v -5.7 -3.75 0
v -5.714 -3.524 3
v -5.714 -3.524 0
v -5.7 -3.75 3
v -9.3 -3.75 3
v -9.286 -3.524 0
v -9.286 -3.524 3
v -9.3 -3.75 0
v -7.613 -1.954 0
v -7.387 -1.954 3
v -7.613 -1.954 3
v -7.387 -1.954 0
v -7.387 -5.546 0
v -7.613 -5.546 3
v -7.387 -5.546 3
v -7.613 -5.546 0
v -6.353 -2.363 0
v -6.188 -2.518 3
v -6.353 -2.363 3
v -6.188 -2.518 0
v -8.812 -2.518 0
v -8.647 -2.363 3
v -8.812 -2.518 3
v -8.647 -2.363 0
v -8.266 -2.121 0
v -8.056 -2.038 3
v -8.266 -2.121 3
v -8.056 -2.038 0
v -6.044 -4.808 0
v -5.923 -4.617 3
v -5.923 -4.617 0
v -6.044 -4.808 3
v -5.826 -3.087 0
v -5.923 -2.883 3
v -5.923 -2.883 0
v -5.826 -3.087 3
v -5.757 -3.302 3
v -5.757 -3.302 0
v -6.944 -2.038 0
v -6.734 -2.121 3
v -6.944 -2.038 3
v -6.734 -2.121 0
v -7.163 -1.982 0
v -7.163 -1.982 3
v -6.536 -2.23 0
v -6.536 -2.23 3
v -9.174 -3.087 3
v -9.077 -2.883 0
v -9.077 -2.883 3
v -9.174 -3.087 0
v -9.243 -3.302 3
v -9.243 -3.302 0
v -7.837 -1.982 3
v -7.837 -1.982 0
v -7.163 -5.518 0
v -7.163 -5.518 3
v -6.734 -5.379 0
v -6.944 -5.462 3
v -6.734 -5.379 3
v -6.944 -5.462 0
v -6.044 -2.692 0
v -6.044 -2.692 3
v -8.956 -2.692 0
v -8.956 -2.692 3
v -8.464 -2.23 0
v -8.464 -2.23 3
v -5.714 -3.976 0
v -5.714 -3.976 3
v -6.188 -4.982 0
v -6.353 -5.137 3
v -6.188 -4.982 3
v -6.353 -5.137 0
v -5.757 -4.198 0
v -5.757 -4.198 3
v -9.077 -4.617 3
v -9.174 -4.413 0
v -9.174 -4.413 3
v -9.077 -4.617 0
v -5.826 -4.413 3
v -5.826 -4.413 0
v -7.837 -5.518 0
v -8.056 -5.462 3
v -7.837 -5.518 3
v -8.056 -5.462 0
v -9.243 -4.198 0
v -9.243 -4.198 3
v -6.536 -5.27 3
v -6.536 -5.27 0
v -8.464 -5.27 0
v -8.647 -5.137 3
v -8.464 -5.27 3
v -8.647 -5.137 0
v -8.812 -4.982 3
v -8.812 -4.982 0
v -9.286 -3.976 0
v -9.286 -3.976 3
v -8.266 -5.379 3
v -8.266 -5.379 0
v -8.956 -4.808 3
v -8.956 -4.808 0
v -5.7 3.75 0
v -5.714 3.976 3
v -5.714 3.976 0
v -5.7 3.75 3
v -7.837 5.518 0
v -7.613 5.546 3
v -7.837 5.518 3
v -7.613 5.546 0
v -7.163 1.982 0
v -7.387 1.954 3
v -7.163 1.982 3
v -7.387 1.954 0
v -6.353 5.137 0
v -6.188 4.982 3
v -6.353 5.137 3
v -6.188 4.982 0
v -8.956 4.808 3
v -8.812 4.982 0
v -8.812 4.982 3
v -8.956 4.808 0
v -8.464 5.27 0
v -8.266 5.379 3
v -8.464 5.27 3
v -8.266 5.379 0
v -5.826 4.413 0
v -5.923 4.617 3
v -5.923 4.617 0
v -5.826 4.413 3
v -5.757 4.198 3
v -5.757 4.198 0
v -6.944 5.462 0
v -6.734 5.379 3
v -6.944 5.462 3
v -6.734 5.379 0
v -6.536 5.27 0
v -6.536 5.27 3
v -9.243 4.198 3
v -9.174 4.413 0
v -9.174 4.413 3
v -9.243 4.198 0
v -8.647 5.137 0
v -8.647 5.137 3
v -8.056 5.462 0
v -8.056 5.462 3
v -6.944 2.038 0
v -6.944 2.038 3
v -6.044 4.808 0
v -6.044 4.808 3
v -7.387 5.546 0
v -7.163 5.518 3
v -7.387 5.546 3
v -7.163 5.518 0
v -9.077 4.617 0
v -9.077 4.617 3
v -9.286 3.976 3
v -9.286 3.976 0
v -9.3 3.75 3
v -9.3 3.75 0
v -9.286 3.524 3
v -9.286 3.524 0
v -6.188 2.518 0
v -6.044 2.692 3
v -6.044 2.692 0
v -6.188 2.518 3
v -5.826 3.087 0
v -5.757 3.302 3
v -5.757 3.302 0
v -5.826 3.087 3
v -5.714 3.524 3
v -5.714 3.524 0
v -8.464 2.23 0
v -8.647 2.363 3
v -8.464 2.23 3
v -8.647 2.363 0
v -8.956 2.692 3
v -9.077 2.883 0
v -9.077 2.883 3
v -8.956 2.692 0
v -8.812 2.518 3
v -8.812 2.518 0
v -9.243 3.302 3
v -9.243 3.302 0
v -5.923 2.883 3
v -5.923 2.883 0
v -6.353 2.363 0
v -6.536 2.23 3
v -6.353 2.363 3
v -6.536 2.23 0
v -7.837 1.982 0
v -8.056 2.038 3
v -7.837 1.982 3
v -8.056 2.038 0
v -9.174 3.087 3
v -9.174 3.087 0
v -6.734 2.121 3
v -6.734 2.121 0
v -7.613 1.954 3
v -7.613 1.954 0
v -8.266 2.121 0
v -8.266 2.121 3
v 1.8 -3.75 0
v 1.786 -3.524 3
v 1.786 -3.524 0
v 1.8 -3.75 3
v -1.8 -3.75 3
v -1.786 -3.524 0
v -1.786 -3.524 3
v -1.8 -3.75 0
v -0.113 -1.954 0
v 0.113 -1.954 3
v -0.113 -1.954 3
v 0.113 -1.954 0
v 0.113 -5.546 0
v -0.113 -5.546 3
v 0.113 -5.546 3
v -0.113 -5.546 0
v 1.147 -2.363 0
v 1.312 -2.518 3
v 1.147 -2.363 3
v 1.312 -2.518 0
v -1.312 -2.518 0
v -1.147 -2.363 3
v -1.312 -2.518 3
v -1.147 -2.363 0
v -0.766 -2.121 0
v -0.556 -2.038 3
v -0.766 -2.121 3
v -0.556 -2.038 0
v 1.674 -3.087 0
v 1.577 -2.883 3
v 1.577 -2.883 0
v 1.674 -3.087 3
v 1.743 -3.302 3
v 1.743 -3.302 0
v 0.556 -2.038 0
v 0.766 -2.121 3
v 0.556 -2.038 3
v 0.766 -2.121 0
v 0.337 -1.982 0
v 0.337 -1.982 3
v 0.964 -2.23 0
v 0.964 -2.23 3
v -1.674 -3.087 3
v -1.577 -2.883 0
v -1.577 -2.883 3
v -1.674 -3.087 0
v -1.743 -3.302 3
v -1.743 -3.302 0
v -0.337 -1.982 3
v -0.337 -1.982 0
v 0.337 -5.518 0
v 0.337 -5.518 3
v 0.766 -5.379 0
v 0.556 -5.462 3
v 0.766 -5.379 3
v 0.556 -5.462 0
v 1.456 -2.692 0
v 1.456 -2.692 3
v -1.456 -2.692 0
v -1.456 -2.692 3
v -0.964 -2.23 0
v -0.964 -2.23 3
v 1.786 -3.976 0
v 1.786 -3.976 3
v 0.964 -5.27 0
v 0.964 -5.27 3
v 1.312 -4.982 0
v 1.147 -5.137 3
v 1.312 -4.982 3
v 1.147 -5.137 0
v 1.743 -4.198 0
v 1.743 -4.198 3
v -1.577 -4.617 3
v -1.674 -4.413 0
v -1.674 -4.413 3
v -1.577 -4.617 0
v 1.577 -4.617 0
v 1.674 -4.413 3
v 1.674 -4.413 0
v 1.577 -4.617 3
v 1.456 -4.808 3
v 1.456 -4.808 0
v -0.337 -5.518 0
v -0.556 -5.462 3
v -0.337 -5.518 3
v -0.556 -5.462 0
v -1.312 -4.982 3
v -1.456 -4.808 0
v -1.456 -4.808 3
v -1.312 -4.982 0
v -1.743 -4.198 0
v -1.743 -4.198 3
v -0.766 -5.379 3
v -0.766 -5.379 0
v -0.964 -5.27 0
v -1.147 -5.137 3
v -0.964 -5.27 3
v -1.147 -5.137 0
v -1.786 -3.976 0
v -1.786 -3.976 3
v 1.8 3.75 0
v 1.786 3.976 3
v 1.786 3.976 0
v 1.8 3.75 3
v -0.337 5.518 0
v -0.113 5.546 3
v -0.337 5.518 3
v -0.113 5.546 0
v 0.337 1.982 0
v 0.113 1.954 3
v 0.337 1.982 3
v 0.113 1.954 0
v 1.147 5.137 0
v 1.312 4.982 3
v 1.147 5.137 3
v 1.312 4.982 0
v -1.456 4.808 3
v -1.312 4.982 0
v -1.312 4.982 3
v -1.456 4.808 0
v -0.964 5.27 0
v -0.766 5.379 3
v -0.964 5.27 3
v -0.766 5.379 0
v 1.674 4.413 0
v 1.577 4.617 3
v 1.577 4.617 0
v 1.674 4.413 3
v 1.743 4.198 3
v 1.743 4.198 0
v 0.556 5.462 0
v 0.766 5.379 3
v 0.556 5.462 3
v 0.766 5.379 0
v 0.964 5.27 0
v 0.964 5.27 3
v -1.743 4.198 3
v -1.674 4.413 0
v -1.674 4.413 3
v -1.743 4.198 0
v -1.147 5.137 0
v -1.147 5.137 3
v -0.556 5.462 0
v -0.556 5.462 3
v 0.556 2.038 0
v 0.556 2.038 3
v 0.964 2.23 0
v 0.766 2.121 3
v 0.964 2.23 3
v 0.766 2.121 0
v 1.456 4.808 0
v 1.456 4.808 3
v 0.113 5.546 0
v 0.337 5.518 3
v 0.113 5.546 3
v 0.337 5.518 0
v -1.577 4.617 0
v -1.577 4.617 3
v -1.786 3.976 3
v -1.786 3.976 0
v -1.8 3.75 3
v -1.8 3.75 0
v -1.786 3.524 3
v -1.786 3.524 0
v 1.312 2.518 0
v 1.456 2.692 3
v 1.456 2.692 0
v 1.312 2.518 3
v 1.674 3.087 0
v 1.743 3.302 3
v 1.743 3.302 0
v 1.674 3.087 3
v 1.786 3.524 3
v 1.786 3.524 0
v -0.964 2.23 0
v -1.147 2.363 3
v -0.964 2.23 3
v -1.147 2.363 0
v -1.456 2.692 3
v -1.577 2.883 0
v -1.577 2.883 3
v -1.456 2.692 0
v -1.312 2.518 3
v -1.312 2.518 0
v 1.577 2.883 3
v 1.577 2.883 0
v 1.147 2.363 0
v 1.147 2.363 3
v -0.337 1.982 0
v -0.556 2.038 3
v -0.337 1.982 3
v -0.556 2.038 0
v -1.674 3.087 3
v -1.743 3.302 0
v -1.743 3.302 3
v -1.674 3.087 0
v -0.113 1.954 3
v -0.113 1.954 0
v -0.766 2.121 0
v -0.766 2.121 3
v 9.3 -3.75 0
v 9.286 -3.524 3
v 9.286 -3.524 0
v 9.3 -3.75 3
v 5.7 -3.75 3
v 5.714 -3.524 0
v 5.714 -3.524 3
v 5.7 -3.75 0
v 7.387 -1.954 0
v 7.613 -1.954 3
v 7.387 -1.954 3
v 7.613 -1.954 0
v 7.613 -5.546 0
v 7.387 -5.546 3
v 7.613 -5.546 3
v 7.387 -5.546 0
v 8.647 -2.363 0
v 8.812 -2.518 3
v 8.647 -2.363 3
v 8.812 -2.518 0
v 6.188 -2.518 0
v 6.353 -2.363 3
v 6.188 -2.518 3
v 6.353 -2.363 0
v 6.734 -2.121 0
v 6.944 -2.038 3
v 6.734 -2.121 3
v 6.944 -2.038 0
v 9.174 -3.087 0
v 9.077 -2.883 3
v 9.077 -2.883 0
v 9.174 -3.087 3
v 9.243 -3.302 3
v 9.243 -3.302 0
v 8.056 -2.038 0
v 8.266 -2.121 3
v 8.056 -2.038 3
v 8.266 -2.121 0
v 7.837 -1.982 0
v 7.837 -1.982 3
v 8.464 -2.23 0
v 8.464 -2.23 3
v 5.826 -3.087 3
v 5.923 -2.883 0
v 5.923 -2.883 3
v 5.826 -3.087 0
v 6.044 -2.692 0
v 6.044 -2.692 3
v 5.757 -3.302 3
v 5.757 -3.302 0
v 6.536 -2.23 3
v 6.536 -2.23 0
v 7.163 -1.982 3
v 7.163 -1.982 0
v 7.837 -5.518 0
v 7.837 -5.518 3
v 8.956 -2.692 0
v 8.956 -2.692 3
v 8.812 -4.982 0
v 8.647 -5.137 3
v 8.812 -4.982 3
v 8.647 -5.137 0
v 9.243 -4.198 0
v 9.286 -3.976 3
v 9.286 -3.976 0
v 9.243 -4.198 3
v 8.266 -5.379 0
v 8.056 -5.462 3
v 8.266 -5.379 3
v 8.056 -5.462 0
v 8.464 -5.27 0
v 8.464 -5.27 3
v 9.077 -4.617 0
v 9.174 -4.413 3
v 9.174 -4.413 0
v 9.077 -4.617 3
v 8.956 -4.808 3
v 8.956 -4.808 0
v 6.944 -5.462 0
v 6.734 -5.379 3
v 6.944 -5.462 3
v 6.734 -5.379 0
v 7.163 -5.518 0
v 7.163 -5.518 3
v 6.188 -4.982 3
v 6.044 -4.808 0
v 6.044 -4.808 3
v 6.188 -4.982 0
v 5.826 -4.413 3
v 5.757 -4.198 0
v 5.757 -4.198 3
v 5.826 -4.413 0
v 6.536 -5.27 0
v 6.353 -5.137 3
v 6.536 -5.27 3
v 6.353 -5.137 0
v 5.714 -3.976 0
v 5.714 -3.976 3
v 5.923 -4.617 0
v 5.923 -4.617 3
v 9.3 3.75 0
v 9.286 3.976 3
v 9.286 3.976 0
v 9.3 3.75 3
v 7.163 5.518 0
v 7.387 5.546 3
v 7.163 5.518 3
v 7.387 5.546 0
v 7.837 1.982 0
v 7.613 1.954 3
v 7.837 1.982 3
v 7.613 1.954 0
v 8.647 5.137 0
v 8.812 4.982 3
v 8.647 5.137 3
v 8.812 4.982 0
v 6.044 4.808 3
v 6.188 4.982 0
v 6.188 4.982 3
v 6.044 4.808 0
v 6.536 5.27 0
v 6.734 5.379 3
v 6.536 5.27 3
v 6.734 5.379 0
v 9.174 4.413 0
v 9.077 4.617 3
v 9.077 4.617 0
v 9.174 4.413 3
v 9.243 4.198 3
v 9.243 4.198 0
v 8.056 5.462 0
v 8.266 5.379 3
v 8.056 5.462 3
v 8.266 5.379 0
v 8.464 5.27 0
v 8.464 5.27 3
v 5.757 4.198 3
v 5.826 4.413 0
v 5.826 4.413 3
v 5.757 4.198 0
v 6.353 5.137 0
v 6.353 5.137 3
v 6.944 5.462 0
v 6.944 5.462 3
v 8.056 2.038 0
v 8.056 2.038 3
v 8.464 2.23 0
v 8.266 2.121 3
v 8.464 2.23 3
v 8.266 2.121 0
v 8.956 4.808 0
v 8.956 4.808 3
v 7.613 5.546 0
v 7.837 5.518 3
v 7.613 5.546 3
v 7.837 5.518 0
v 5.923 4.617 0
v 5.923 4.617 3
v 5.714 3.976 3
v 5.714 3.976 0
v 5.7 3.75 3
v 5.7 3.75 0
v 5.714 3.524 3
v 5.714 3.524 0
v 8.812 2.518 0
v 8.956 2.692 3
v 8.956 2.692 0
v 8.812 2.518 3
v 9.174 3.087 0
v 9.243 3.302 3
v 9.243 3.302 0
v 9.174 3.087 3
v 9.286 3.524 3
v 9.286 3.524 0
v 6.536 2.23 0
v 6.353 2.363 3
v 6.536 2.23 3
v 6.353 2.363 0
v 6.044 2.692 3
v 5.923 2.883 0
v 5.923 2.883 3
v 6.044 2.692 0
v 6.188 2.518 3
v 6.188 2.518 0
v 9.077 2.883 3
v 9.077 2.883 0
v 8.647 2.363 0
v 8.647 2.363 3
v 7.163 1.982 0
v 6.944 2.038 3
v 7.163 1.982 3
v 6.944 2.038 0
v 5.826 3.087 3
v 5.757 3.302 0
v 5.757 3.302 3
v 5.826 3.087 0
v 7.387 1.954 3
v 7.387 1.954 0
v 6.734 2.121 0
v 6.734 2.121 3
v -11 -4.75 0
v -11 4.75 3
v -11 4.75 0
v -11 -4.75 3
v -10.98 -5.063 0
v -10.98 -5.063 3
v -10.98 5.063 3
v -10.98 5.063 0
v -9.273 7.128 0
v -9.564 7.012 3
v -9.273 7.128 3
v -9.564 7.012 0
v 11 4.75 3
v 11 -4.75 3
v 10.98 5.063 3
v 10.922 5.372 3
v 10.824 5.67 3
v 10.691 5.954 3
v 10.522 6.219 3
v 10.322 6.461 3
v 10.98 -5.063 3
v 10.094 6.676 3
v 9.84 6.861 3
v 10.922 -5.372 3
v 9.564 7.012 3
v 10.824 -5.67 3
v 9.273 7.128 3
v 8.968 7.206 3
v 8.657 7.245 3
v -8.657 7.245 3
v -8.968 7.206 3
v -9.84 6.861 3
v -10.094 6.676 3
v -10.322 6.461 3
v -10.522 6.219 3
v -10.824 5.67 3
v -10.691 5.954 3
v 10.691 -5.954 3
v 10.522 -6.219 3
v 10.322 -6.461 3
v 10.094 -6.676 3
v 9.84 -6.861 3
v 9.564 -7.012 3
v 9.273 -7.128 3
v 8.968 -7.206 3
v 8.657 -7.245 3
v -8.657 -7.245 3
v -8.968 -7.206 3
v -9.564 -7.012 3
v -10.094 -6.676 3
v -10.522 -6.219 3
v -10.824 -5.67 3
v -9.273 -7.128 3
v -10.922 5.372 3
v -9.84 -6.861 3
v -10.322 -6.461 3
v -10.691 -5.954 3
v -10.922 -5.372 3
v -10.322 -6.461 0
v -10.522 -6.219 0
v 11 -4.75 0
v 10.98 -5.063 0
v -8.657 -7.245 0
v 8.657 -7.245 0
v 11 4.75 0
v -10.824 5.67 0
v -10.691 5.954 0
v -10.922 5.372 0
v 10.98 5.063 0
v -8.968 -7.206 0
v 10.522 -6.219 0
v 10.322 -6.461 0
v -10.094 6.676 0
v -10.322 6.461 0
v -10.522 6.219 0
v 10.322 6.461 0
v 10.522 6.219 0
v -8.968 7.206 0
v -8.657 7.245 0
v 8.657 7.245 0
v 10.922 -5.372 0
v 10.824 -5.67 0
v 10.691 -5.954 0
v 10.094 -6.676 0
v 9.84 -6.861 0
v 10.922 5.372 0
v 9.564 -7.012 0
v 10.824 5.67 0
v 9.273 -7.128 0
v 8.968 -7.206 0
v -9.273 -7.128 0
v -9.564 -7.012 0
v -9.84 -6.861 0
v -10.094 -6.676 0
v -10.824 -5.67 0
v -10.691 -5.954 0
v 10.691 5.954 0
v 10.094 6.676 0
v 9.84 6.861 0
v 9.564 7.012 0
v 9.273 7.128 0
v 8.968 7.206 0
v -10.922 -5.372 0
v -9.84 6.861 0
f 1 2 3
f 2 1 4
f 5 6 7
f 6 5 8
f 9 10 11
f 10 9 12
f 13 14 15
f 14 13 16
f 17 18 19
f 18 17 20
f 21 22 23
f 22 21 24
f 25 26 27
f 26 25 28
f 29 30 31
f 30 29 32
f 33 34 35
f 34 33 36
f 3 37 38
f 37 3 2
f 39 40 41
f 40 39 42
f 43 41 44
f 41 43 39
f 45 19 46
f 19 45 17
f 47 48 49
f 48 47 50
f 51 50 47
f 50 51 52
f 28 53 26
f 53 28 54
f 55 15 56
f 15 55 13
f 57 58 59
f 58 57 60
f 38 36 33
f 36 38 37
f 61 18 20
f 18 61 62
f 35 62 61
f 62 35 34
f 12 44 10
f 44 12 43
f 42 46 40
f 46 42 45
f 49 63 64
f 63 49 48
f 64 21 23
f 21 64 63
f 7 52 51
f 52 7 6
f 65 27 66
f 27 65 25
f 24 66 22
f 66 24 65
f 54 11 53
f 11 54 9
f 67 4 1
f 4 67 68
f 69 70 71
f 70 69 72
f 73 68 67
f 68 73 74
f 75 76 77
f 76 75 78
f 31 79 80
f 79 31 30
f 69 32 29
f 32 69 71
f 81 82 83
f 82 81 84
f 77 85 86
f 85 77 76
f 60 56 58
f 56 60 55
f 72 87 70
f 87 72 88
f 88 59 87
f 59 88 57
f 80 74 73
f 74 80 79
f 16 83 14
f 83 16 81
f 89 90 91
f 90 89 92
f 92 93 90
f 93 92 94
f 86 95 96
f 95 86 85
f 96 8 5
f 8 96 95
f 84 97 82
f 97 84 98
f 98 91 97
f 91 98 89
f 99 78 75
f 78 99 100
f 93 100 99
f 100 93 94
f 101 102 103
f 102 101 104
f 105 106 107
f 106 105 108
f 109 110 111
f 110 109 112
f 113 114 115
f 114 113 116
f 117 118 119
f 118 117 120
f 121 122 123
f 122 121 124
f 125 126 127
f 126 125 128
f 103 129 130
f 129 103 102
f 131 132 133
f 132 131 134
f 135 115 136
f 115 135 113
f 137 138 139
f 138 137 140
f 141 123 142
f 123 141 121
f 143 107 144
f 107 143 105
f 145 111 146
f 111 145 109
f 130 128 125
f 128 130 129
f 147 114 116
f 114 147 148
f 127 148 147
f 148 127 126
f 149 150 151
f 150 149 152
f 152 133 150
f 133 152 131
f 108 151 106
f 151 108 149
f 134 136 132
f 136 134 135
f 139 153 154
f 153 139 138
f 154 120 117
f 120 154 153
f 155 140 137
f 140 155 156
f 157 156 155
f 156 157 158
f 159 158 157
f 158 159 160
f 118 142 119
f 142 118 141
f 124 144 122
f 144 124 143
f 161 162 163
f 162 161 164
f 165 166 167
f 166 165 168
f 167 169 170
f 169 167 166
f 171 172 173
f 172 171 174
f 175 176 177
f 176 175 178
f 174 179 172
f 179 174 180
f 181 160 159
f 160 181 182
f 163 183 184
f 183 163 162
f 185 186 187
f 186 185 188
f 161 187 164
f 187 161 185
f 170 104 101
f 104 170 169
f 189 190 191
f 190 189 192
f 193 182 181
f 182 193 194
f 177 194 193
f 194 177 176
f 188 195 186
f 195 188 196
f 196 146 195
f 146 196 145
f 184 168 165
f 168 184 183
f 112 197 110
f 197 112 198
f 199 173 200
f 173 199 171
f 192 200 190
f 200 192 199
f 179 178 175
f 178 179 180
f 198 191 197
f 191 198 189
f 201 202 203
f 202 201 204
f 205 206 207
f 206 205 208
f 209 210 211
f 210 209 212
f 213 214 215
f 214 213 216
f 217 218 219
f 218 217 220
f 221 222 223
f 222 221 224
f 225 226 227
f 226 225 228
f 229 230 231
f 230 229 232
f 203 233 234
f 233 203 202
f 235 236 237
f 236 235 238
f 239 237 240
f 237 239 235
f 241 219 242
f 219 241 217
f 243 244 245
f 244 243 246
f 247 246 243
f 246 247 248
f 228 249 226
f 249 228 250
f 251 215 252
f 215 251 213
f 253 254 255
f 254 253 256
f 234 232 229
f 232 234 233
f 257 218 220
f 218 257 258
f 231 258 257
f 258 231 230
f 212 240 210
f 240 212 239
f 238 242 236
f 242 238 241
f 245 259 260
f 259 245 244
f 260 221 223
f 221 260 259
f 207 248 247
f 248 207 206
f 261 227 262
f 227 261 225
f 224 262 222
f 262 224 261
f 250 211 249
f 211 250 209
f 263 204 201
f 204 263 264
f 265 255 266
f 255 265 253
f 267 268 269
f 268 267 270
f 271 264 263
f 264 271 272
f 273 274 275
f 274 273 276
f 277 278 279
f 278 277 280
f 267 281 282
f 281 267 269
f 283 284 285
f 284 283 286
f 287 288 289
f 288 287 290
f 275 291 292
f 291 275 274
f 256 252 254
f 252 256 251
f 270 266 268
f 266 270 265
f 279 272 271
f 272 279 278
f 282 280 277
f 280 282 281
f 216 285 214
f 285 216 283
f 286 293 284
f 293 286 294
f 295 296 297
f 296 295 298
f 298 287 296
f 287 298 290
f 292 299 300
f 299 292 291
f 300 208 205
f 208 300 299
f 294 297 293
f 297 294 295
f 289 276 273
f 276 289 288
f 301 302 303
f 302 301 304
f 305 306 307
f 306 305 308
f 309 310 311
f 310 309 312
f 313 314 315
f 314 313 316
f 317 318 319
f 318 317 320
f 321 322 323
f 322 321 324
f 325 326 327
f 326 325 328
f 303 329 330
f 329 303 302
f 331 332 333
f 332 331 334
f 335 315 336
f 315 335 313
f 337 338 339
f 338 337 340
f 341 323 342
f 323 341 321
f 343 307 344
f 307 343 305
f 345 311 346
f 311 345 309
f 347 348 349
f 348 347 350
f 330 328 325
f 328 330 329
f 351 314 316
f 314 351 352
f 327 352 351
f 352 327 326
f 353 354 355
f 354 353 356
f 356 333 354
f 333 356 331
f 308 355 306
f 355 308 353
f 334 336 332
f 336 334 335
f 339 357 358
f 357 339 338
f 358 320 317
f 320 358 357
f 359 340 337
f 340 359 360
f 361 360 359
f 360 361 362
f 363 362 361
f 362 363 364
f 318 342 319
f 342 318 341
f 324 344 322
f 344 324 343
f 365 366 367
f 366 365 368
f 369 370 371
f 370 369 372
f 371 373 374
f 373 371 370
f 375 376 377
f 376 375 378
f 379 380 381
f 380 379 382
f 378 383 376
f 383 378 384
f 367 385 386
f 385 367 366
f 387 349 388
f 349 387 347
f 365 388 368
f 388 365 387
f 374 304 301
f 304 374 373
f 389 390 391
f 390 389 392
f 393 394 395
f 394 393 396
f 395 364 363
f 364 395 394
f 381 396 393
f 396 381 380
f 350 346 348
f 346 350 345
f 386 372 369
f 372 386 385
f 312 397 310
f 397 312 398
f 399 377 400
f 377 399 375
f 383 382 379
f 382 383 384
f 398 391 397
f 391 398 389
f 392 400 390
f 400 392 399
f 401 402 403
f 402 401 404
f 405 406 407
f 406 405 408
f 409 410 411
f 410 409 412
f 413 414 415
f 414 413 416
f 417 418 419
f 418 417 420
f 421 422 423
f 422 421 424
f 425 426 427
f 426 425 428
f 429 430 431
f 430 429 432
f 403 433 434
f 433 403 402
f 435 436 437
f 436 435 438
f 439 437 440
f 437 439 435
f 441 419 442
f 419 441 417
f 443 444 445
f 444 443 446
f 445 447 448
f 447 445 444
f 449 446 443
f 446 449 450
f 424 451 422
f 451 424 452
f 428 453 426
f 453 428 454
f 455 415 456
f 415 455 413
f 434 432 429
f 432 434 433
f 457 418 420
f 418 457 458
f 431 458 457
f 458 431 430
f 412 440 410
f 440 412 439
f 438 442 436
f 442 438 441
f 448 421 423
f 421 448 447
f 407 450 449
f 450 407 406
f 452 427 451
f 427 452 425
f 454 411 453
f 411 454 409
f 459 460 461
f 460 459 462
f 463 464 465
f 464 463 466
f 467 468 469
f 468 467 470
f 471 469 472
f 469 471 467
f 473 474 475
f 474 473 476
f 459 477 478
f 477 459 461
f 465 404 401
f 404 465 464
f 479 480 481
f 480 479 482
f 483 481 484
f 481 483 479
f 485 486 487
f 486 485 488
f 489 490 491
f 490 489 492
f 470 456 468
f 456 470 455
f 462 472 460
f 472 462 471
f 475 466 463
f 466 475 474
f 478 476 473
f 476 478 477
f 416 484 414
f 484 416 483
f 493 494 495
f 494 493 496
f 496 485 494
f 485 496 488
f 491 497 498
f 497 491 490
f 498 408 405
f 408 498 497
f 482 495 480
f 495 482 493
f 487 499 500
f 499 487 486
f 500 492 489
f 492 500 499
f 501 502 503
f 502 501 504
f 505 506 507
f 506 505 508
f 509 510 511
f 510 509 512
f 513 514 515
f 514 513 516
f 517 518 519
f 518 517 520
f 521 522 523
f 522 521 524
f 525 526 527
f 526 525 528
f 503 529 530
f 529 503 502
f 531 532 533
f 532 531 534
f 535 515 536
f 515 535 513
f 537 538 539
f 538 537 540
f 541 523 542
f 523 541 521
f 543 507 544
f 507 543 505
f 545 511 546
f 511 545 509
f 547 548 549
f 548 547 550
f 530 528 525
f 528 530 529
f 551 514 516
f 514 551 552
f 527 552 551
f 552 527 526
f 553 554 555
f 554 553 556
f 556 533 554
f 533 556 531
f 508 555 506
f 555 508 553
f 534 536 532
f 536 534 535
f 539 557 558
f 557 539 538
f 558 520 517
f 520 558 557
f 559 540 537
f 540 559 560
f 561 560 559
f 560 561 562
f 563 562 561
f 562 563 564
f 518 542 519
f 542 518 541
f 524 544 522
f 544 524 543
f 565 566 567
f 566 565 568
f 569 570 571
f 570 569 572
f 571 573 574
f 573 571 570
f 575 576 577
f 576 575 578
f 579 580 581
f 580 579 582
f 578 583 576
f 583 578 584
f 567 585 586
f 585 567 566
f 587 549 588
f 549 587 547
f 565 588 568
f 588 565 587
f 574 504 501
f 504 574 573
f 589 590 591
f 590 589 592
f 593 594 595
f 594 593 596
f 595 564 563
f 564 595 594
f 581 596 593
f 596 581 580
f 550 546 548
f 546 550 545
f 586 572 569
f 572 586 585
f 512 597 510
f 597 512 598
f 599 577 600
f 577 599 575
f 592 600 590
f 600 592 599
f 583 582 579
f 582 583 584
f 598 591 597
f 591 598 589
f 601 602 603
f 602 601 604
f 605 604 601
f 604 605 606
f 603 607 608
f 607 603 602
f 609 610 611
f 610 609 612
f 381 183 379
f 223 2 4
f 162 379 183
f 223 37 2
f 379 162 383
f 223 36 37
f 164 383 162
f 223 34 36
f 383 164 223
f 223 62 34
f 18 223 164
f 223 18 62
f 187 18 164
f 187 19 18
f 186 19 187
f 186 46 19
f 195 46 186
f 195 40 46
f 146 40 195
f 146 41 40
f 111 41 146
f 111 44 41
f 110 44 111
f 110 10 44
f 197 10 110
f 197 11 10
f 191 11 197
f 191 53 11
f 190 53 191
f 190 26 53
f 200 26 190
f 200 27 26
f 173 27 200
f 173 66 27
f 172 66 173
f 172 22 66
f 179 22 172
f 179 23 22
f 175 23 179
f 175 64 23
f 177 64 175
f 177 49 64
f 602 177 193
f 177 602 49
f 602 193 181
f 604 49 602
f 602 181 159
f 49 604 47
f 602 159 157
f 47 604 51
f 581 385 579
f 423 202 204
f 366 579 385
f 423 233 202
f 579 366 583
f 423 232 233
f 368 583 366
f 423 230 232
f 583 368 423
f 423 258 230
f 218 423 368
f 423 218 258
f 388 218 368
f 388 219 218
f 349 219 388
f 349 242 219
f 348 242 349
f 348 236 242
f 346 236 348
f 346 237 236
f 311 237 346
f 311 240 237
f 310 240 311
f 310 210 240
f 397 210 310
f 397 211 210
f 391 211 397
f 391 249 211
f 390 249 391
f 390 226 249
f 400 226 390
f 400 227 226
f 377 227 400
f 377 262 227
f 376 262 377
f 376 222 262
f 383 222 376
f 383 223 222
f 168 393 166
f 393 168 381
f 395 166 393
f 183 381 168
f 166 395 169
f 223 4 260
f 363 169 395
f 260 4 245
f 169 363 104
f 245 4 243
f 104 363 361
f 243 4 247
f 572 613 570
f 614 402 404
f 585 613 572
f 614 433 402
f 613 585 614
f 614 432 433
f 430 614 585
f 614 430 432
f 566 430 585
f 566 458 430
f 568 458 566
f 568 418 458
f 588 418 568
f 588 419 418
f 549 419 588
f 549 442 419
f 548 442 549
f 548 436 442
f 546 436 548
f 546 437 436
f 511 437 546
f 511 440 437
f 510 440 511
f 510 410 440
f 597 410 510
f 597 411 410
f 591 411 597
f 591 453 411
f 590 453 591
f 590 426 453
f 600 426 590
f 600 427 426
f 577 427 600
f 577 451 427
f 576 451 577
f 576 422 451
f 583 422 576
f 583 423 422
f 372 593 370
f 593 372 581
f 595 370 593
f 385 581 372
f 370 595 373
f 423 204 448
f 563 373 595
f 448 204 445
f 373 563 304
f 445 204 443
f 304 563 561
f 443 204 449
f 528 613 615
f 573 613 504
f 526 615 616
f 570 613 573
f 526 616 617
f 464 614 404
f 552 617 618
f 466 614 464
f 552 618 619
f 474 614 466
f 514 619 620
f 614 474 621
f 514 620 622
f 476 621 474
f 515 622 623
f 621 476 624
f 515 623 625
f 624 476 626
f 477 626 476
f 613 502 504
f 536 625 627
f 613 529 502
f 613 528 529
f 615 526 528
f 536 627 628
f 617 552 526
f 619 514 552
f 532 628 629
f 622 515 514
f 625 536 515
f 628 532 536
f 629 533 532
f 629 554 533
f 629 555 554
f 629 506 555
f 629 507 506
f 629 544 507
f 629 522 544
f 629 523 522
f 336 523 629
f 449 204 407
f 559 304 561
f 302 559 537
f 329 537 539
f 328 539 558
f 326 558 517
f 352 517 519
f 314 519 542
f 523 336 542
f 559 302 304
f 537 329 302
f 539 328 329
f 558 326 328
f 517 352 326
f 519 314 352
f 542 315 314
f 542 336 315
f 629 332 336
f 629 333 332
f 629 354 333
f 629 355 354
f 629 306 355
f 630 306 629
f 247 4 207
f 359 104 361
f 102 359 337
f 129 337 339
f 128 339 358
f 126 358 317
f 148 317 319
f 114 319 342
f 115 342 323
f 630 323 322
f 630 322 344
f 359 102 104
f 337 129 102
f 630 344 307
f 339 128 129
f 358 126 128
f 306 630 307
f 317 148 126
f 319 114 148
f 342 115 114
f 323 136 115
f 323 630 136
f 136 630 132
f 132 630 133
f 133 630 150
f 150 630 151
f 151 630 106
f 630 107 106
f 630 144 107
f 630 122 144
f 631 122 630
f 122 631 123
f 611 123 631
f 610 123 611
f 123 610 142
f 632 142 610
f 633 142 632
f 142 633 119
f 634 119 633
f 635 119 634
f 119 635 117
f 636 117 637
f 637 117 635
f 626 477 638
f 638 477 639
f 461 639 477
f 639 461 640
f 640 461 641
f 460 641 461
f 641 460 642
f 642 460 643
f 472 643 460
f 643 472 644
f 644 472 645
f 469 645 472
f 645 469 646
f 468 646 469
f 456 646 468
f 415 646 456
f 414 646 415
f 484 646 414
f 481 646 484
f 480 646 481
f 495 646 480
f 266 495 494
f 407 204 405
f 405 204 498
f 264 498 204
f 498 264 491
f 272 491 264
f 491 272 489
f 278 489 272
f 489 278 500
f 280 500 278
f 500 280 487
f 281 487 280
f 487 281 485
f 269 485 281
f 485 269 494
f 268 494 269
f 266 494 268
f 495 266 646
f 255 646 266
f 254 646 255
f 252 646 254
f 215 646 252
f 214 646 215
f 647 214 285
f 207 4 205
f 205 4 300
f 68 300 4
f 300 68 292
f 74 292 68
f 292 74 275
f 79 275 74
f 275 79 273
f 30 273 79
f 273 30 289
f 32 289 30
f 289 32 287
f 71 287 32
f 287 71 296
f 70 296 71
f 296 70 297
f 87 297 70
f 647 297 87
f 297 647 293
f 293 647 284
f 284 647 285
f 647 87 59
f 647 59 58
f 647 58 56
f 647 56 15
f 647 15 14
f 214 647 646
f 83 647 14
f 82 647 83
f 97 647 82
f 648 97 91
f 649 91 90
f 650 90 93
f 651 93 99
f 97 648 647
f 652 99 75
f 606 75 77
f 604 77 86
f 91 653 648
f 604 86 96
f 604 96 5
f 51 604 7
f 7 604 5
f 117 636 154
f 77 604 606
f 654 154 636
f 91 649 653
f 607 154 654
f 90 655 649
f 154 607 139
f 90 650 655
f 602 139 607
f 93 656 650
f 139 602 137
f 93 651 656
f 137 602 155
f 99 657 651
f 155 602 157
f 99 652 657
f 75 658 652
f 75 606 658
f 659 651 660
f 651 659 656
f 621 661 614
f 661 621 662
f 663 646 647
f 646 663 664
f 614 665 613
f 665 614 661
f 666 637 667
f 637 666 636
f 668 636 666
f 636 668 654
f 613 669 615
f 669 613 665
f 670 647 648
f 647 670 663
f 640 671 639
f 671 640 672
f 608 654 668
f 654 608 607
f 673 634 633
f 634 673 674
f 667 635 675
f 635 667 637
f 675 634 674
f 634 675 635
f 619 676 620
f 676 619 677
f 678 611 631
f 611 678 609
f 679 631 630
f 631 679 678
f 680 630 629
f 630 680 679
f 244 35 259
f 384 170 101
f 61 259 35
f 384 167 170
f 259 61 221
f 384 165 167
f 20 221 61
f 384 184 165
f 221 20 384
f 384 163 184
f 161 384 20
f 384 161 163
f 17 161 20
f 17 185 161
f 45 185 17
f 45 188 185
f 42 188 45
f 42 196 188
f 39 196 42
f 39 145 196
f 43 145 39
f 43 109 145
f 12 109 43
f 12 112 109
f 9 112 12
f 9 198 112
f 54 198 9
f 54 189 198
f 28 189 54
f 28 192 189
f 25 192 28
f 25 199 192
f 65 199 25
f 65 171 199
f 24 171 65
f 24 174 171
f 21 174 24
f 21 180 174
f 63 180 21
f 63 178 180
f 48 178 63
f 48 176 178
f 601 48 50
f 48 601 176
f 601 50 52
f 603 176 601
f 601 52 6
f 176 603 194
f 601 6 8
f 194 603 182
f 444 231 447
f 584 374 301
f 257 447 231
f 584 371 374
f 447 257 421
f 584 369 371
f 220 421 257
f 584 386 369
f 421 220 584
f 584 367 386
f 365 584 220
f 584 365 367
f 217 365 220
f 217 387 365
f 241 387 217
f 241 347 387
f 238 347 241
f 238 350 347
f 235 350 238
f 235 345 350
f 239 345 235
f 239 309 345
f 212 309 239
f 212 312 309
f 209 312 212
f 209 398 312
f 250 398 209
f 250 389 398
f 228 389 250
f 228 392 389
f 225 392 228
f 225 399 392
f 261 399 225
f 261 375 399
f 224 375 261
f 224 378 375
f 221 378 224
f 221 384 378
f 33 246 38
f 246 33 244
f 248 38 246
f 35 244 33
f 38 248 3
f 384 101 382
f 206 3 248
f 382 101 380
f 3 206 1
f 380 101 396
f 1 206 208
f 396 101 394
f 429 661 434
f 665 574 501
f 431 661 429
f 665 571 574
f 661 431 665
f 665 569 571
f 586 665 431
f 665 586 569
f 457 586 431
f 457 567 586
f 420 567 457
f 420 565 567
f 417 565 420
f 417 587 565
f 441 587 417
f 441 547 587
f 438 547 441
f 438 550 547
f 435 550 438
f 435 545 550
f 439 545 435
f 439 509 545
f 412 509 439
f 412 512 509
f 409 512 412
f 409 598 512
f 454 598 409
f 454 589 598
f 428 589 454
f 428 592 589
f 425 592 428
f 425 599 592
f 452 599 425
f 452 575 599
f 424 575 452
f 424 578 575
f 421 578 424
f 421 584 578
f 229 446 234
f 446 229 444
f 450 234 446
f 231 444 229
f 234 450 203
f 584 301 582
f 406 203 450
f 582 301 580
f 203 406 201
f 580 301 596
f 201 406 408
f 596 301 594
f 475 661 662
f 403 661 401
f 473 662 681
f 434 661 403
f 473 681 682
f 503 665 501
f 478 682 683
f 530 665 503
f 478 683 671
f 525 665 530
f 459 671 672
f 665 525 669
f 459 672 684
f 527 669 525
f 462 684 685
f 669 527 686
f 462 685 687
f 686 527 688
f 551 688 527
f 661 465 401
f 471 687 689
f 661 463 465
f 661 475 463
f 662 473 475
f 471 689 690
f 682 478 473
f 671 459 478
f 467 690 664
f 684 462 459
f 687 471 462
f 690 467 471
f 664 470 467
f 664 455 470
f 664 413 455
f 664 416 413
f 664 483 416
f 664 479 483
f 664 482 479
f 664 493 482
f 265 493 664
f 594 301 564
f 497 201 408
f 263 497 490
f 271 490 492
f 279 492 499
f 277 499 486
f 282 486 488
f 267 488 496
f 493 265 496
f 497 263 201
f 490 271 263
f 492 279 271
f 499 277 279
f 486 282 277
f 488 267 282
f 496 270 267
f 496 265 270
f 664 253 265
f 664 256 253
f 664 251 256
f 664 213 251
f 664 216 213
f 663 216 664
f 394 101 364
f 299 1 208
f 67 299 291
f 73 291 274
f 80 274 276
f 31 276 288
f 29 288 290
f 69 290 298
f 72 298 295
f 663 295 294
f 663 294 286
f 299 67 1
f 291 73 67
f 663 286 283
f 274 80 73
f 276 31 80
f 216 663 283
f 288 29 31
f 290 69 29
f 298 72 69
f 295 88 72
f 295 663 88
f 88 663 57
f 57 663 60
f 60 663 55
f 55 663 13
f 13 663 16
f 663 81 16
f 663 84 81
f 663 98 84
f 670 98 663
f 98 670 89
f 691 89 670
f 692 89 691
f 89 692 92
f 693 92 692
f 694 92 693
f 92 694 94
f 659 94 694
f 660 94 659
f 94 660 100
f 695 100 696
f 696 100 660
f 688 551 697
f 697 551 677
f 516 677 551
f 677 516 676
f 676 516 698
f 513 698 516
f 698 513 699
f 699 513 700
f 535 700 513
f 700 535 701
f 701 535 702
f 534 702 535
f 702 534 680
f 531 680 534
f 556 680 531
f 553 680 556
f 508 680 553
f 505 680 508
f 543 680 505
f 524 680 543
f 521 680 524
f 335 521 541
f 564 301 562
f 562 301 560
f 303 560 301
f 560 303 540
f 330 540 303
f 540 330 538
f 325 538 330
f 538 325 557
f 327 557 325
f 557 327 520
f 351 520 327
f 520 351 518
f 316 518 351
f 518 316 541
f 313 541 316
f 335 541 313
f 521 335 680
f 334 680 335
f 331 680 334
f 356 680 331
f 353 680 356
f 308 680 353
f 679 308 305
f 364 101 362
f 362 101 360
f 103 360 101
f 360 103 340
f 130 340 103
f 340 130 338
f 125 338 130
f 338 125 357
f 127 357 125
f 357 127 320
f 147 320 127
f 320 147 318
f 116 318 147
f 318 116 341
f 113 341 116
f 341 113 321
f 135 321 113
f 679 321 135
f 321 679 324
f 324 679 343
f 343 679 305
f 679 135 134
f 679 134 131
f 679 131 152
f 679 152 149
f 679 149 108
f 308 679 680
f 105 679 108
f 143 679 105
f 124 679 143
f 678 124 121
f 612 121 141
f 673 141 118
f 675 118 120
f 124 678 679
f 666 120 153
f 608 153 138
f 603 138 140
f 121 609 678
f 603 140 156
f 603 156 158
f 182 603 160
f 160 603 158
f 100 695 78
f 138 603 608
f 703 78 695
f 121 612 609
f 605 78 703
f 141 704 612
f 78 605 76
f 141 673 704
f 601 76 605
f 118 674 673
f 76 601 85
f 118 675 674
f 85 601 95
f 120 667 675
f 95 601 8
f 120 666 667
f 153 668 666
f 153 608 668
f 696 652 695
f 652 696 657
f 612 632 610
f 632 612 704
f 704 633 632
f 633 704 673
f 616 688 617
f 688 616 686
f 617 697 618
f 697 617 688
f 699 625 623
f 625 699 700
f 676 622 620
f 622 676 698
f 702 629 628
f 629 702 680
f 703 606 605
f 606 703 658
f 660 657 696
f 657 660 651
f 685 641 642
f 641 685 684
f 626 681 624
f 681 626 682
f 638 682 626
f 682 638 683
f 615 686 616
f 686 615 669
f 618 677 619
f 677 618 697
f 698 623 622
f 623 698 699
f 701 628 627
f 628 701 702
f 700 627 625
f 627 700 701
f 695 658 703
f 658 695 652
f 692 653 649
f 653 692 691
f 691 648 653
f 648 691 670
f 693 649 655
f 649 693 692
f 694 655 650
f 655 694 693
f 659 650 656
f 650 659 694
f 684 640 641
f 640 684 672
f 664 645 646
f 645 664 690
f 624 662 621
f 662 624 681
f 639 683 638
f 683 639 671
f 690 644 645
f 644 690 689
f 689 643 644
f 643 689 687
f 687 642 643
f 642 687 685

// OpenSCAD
$fn = 50;


difference() {
	union() {
		translate(v = [0, 0, 0]) {
			rotate(a = [0, 0, 0]) {
				hull() {
					translate(v = [-8.5000000000, 4.7500000000, 0]) {
						rotate(a = [0, 0, 0]) {
							translate(v = [0, 0, 0]) {
								rotate(a = [0, 0, 0]) {
									cylinder(h = 3, r = 2.5000000000);
								}
							}
						}
					}
					translate(v = [8.5000000000, 4.7500000000, 0]) {
						rotate(a = [0, 0, 0]) {
							translate(v = [0, 0, 0]) {
								rotate(a = [0, 0, 0]) {
									cylinder(h = 3, r = 2.5000000000);
								}
							}
						}
					}
					translate(v = [-8.5000000000, -4.7500000000, 0]) {
						rotate(a = [0, 0, 0]) {
							translate(v = [0, 0, 0]) {
								rotate(a = [0, 0, 0]) {
									cylinder(h = 3, r = 2.5000000000);
								}
							}
						}
					}
					translate(v = [8.5000000000, -4.7500000000, 0]) {
						rotate(a = [0, 0, 0]) {
							translate(v = [0, 0, 0]) {
								rotate(a = [0, 0, 0]) {
									cylinder(h = 3, r = 2.5000000000);
								}
							}
						}
					}
				}
			}
		}
	}
	union() {
		translate(v = [-7.5000000000, -3.7500000000, 0]) {
			rotate(a = [0, 0, 0]) {
				translate(v = [0, 0, -50]) {
					rotate(a = [0, 0, 0]) {
						cylinder(h = 100, r = 1.8000000000);
					}
				}
			}
		}
		translate(v = [-7.5000000000, 3.7500000000, 0]) {
			rotate(a = [0, 0, 0]) {
				translate(v = [0, 0, -50]) {
					rotate(a = [0, 0, 0]) {
						cylinder(h = 100, r = 1.8000000000);
					}
				}
			}
		}
		translate(v = [0.0000000000, -3.7500000000, 0]) {
			rotate(a = [0, 0, 0]) {
				translate(v = [0, 0, -50]) {
					rotate(a = [0, 0, 0]) {
						cylinder(h = 100, r = 1.8000000000);
					}
				}
			}
		}
		translate(v = [0.0000000000, 3.7500000000, 0]) {
			rotate(a = [0, 0, 0]) {
				translate(v = [0, 0, -50]) {
					rotate(a = [0, 0, 0]) {
						cylinder(h = 100, r = 1.8000000000);
					}
				}
			}
		}
		translate(v = [7.5000000000, -3.7500000000, 0]) {
			rotate(a = [0, 0, 0]) {
				translate(v = [0, 0, -50]) {
					rotate(a = [0, 0, 0]) {
						cylinder(h = 100, r = 1.8000000000);
					}
				}
			}
		}
		translate(v = [7.5000000000, 3.7500000000, 0]) {
			rotate(a = [0, 0, 0]) {
				translate(v = [0, 0, -50]) {
					rotate(a = [0, 0, 0]) {
						cylinder(h = 100, r = 1.8000000000);
					}
				}
			}
		}
	}
}
